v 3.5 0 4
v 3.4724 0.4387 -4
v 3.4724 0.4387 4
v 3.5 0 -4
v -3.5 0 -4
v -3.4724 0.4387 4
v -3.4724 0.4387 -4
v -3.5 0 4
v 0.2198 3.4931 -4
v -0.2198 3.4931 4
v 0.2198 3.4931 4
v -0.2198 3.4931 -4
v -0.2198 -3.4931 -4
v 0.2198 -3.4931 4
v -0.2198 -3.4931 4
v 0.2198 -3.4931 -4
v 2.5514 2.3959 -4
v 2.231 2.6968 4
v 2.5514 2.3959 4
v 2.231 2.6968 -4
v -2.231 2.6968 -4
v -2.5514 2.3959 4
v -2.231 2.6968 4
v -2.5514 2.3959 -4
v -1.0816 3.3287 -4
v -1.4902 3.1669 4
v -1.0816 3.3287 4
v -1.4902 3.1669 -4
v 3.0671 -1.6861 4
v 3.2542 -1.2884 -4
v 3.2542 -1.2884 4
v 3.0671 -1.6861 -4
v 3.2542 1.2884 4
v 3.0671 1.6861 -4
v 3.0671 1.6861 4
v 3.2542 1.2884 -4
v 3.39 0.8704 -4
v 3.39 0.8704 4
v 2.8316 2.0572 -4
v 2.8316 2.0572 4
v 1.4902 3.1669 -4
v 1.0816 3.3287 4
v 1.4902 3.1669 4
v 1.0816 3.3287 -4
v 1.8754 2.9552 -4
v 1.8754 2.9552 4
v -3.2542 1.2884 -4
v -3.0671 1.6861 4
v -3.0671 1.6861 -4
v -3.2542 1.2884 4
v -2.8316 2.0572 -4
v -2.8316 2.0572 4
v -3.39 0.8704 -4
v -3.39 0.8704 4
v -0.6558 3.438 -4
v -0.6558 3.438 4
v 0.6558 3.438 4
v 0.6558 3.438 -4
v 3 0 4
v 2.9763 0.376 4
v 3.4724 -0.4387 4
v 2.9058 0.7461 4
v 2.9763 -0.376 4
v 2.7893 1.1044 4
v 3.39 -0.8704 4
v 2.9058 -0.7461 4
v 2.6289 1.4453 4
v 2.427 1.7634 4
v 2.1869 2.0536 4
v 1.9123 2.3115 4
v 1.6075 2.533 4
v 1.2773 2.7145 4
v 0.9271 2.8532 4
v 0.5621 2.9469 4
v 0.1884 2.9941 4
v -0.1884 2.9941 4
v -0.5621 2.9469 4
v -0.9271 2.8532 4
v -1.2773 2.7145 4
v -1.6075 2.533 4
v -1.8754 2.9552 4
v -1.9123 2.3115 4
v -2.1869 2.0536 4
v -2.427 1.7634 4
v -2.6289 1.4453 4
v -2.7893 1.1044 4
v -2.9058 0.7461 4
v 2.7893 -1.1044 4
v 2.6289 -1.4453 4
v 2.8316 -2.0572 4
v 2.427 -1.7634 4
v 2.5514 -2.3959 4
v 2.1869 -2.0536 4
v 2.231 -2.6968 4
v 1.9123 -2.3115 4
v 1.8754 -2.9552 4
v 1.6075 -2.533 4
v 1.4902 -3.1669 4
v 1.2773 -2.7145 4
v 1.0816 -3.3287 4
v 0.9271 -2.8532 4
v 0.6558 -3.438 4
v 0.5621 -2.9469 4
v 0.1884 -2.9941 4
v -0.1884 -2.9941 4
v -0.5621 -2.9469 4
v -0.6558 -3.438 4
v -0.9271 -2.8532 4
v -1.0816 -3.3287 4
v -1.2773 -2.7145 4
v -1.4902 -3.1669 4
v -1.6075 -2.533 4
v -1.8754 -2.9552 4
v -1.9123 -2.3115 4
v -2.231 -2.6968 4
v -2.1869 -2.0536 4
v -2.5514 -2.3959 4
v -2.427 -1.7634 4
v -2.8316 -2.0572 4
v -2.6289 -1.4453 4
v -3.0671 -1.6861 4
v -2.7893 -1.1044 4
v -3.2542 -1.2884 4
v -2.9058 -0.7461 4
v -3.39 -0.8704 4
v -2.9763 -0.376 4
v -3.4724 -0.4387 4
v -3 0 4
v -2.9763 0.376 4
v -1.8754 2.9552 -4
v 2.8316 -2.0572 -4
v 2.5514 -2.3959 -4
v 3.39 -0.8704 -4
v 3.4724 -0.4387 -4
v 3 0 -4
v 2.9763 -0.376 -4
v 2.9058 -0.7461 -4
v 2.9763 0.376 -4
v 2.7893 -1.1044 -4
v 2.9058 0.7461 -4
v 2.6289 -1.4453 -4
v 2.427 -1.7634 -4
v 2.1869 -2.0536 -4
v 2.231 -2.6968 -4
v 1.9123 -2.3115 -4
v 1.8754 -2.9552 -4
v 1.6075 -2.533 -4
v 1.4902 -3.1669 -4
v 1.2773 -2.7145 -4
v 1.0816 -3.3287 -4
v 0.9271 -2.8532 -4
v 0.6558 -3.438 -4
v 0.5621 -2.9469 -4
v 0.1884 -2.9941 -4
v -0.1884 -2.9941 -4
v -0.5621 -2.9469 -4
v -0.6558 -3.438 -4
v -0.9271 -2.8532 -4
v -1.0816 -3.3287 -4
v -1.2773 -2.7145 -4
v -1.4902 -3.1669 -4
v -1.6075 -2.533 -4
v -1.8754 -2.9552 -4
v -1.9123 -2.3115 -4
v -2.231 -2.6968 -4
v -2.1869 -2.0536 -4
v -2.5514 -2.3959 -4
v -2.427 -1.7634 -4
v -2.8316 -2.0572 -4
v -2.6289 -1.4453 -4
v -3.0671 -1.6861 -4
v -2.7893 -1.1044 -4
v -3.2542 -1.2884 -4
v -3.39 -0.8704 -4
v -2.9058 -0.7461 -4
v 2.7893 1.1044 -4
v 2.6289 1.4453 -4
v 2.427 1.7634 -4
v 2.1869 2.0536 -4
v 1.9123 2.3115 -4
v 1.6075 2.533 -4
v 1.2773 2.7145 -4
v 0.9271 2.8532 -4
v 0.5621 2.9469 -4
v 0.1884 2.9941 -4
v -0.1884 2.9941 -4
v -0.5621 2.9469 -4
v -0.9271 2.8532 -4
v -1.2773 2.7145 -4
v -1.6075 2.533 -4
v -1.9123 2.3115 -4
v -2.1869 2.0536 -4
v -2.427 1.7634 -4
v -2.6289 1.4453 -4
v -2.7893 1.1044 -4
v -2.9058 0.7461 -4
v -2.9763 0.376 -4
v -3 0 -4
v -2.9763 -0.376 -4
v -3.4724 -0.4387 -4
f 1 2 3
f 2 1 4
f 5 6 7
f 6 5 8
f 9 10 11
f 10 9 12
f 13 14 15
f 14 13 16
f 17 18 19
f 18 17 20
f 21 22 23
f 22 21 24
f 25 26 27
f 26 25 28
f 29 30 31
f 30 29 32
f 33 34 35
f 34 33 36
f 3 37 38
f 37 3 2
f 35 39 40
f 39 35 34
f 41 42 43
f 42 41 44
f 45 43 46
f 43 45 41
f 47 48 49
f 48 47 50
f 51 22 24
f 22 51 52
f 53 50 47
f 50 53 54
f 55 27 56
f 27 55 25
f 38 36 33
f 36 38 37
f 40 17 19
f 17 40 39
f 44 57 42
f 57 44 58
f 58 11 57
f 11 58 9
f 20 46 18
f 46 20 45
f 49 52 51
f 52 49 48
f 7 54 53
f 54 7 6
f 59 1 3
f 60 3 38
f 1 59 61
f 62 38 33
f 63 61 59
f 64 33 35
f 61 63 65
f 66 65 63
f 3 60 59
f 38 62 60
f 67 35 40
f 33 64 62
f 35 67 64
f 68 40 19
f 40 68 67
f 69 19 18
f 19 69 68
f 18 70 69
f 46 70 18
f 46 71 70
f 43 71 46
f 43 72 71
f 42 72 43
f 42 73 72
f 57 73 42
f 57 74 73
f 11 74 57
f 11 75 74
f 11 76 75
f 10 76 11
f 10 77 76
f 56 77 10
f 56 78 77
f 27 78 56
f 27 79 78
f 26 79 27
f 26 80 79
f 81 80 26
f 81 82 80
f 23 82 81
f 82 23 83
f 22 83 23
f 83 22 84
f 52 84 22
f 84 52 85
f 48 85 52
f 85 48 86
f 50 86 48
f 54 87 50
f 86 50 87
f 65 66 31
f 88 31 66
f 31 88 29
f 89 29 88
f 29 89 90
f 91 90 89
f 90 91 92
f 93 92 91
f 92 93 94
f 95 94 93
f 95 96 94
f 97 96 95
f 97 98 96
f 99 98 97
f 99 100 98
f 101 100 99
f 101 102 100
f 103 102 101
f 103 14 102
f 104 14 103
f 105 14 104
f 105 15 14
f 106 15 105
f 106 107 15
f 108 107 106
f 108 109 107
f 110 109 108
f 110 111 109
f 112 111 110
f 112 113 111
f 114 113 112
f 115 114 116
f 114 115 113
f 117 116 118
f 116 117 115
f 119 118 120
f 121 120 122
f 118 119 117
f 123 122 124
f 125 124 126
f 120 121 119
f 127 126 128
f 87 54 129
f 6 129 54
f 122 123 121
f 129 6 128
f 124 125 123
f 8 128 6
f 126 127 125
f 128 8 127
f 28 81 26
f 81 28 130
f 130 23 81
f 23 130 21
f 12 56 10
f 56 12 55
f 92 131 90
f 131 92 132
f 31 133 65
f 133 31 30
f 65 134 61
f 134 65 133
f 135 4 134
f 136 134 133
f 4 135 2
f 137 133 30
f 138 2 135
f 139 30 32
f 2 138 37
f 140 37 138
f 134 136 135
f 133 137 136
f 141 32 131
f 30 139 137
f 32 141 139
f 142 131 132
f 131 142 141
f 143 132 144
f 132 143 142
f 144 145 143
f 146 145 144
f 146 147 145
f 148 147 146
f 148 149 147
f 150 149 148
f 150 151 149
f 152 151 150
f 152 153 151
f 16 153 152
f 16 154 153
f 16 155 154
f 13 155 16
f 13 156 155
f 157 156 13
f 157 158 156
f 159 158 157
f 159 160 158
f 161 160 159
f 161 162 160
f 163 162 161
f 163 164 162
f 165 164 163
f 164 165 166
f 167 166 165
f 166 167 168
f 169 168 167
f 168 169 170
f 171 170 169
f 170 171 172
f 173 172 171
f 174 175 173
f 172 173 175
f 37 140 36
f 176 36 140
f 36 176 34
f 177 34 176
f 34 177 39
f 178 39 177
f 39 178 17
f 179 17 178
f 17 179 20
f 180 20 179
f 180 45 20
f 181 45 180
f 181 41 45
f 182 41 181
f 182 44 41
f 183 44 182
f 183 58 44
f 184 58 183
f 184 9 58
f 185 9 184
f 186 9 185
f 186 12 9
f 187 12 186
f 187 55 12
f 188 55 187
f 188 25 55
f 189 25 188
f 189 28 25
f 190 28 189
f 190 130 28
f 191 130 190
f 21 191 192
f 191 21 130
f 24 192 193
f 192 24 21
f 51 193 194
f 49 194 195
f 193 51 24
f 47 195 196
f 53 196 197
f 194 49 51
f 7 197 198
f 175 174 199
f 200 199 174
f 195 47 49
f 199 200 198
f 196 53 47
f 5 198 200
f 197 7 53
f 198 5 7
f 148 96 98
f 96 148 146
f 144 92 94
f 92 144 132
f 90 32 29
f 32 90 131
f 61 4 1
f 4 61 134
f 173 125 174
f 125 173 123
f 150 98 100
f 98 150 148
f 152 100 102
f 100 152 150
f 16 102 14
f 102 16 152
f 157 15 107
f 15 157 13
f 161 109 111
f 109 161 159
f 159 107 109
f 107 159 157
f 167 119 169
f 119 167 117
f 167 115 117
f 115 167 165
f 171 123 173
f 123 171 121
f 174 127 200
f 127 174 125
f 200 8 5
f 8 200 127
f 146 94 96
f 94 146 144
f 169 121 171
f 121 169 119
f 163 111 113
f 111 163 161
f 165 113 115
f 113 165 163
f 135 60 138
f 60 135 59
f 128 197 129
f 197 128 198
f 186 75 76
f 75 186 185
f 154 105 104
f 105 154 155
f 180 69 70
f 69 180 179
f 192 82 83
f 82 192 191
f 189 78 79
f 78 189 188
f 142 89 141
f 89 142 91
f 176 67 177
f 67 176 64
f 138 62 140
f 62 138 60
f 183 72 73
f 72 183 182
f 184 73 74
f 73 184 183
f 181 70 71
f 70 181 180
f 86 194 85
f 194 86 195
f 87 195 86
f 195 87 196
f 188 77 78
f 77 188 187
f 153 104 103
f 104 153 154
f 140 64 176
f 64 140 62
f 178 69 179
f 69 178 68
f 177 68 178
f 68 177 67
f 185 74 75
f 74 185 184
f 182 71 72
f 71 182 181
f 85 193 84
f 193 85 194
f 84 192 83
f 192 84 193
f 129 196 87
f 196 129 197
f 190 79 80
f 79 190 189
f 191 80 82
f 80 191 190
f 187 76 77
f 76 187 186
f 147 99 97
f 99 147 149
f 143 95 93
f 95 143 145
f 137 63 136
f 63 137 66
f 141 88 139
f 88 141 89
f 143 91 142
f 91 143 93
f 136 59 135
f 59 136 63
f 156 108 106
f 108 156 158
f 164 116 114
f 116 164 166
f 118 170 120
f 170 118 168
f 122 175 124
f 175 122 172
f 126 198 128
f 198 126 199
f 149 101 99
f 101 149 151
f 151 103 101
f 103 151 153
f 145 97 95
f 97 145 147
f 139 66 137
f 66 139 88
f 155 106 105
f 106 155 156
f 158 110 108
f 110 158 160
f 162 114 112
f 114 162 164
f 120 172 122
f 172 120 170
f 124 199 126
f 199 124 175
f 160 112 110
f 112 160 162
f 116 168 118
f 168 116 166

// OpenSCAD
$fn = 50;


difference() {
	union() {
		translate(v = [0, 0, -4.0000000000]) {
			cylinder(h = 8, r = 3.5000000000);
		}
	}
	union() {
		translate(v = [0, 0, -100.0000000000]) {
			cylinder(h = 200, r = 3);
		}
	}
}
